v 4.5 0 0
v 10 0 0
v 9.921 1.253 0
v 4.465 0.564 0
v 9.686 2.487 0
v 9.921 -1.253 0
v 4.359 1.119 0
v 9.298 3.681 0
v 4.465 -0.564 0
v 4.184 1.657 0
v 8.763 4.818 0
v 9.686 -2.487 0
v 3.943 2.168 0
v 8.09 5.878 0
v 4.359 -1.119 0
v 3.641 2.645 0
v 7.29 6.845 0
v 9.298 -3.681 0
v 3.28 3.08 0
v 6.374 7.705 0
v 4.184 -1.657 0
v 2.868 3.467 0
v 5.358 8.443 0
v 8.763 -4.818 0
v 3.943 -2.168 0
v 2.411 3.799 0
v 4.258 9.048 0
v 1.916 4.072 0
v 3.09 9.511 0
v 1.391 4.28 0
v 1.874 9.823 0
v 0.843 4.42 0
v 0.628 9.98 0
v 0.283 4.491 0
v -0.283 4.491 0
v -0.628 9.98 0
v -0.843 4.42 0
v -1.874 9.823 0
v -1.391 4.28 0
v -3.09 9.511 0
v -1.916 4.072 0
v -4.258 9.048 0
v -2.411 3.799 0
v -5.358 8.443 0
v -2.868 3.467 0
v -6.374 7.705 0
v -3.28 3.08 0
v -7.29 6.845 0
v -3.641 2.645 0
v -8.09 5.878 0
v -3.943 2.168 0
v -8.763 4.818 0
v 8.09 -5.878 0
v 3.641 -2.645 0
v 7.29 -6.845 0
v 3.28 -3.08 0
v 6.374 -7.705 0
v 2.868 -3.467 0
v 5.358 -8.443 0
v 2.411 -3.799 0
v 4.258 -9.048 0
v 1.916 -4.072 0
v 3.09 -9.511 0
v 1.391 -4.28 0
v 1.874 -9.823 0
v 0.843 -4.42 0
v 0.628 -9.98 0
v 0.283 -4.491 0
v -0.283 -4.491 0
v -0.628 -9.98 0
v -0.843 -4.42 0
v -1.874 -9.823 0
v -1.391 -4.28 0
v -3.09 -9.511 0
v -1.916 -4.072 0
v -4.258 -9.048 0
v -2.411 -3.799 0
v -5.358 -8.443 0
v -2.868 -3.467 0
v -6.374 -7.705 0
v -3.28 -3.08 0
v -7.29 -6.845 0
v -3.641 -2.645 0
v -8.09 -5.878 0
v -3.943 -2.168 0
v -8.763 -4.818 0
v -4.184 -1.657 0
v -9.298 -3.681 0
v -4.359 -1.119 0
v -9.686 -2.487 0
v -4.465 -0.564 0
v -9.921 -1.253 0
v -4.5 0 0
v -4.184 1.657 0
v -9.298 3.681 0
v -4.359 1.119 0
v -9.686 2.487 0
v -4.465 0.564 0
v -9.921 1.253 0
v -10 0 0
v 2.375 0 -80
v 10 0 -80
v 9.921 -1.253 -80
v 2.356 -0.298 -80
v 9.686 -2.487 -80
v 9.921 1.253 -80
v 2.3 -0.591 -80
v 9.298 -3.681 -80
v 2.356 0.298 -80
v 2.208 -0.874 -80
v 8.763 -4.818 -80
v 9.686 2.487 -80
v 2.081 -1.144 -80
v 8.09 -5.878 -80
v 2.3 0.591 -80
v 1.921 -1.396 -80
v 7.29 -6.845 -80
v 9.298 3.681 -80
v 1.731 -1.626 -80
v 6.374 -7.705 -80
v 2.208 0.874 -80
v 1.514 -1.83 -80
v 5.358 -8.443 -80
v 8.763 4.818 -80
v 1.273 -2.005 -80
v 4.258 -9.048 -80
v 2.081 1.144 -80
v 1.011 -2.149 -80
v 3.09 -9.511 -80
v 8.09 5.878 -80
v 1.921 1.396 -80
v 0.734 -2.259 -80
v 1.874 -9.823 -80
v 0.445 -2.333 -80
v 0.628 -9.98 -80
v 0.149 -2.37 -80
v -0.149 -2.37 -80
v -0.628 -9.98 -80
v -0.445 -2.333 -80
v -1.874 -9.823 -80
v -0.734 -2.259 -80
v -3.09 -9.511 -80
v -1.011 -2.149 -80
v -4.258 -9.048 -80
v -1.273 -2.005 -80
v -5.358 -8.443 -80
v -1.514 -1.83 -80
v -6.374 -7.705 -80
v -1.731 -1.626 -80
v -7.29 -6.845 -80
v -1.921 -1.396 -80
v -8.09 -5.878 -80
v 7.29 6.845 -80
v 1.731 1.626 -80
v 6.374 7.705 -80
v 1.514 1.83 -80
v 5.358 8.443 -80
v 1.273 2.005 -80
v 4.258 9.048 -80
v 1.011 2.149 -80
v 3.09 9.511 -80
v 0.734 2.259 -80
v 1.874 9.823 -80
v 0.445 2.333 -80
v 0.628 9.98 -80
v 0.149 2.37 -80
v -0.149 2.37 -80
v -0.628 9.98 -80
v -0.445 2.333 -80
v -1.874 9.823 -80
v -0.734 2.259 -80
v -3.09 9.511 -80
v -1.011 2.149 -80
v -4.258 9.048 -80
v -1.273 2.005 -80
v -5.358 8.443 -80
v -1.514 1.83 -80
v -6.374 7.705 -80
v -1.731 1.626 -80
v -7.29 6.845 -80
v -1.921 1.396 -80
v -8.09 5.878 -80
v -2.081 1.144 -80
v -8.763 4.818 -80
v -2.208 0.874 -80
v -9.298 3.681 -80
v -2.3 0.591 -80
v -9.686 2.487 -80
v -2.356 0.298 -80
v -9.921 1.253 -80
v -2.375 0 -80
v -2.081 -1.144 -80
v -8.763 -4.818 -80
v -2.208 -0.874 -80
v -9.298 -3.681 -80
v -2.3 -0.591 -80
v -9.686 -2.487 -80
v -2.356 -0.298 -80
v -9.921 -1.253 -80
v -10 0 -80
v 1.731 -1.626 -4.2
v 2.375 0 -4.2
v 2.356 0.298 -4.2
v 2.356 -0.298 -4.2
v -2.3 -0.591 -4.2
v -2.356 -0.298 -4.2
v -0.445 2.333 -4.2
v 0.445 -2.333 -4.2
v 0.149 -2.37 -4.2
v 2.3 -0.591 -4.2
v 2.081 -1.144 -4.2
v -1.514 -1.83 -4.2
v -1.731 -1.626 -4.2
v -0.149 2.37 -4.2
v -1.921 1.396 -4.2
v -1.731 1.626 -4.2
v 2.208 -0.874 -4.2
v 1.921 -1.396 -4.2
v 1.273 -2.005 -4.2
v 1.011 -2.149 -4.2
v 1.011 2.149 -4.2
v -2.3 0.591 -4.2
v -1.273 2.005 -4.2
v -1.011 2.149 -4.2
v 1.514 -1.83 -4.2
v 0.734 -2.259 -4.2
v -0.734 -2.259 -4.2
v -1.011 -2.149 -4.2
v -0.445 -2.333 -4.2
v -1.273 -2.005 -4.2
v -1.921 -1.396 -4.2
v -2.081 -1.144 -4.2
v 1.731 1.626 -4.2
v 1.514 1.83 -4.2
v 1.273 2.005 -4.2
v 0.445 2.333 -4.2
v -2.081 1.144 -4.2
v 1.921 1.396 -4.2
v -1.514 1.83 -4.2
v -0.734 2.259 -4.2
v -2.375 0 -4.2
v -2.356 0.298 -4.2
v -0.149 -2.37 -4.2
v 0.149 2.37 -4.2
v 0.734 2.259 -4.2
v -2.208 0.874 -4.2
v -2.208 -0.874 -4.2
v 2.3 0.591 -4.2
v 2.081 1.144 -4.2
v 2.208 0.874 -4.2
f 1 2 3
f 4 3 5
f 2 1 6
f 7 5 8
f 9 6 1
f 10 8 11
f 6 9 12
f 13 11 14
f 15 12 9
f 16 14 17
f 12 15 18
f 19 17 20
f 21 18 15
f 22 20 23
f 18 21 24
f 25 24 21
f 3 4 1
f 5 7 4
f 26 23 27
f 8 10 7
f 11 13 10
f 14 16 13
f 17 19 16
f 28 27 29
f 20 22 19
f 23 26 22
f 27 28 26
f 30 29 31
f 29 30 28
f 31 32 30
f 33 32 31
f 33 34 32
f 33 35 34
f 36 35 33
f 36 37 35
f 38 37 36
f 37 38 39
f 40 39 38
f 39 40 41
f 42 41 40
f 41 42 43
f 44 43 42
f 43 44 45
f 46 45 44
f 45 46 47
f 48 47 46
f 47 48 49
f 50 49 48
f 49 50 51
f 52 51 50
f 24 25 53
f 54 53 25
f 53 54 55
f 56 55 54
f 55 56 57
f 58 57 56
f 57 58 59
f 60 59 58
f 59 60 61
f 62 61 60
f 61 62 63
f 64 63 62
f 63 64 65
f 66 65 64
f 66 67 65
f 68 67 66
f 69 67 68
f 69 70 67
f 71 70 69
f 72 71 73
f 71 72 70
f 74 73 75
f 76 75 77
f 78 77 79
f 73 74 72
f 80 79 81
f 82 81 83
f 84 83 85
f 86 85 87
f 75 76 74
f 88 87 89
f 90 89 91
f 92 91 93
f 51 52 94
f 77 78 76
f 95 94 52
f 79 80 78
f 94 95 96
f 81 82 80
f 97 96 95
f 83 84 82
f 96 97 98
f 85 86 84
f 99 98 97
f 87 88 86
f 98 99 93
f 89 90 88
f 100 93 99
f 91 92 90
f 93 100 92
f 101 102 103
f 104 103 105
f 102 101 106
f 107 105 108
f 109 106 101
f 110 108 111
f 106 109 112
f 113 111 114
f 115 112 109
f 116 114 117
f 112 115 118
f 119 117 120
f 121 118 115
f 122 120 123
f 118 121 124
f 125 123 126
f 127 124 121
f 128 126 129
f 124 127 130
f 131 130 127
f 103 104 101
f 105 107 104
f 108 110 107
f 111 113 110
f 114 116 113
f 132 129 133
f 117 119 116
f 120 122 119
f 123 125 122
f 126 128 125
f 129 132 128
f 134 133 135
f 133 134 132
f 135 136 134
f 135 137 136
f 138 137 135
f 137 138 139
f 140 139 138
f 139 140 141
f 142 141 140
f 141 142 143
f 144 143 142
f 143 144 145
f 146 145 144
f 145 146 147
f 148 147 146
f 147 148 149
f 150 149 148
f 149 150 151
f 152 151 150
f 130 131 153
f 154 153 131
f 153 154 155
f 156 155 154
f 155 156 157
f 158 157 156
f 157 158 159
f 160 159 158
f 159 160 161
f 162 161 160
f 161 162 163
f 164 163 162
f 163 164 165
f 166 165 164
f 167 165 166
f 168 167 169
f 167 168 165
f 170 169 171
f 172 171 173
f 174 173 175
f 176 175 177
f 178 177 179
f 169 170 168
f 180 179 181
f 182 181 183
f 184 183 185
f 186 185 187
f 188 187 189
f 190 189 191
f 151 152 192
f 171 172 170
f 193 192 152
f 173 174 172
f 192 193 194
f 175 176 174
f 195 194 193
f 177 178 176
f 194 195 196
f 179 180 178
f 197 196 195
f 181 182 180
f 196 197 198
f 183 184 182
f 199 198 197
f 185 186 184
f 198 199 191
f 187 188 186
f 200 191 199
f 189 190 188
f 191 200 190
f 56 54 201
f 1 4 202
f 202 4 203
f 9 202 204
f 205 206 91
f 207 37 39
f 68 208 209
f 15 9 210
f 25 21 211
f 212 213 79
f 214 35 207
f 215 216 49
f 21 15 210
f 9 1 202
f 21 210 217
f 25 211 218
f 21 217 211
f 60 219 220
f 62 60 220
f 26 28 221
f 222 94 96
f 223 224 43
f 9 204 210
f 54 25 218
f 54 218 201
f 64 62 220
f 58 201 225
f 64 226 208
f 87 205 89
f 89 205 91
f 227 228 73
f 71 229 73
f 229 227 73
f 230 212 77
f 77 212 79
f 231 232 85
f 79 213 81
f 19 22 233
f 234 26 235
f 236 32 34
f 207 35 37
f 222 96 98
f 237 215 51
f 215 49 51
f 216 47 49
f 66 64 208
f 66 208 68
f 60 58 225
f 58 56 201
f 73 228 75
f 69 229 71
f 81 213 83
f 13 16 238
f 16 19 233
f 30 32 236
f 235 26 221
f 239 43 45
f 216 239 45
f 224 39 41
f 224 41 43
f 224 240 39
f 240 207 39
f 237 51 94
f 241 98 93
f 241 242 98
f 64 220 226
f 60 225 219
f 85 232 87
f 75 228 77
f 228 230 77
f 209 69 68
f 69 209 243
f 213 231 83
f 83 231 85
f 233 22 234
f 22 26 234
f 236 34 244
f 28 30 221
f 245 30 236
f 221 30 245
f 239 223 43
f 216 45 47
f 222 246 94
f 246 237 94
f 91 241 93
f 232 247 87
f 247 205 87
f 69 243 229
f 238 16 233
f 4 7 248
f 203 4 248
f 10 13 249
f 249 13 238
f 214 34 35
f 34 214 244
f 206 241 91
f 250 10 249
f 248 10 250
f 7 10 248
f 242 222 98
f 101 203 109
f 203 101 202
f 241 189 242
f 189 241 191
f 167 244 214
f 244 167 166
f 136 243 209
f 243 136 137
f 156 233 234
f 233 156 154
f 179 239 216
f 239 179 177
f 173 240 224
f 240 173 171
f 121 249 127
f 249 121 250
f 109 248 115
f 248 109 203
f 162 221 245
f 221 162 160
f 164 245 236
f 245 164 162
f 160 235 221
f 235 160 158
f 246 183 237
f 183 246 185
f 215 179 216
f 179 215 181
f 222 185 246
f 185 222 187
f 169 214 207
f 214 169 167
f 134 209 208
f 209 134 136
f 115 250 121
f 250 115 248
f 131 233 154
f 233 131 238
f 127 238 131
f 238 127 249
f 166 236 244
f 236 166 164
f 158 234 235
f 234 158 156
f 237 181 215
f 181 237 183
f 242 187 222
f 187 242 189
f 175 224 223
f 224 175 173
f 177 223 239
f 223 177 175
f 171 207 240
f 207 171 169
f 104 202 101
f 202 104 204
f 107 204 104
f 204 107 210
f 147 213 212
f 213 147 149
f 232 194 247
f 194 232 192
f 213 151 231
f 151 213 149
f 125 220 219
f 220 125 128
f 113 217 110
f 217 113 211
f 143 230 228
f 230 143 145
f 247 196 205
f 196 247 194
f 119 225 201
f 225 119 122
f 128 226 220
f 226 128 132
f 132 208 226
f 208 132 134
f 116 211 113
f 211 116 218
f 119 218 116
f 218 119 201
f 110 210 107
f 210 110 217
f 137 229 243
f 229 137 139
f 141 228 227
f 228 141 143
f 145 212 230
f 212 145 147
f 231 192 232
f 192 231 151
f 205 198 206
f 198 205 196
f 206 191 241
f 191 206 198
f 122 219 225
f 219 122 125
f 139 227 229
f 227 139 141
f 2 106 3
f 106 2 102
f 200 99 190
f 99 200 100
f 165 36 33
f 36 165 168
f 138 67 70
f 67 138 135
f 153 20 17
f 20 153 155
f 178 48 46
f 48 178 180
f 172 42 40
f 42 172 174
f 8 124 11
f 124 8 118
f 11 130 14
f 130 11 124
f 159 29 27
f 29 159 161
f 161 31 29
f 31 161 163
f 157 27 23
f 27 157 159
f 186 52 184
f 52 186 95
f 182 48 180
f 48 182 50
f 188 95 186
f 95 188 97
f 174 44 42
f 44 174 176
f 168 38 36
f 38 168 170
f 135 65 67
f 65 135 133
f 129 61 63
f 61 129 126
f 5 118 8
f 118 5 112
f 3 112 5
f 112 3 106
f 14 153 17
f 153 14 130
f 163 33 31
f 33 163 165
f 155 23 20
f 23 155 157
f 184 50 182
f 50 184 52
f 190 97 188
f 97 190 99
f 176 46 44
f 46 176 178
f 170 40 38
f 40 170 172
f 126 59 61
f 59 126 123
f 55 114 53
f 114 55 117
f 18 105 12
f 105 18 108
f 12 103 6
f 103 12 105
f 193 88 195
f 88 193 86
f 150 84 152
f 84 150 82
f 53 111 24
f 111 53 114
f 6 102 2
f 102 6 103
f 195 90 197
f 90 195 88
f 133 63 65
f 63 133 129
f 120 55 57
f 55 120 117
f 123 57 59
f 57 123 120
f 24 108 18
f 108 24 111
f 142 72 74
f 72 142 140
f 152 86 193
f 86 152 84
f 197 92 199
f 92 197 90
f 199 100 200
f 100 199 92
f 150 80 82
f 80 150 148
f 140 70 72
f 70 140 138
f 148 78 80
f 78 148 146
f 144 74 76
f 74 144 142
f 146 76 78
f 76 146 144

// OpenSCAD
$fn = 50;


difference() {
	union() {
		translate(v = [0, 0, -80.0000000000]) {
			cylinder(h = 80, r = 10.0000000000);
		}
	}
	union() {
		translate(v = [0, 0, 0]) {
			rotate(a = [0, 0, 0]) {
				difference() {
					union() {
						#translate(v = [0, 0, -80.0000000000]) {
							cylinder(h = 80, r = 2.2500000000);
						}
						#translate(v = [0, 0, -4.2000000000]) {
							cylinder(h = 4.2000000000, r = 10.0000000000, r1 = 2.3750000000, r2 = 4.5000000000);
						}
						#translate(v = [0, 0, -80.0000000000]) {
							cylinder(h = 80, r = 2.3750000000);
						}
						#translate(v = [0, 0, -80.0000000000]) {
							cylinder(h = 80, r = 2.2500000000);
						}
					}
					union();
				}
			}
		}
	}
}
